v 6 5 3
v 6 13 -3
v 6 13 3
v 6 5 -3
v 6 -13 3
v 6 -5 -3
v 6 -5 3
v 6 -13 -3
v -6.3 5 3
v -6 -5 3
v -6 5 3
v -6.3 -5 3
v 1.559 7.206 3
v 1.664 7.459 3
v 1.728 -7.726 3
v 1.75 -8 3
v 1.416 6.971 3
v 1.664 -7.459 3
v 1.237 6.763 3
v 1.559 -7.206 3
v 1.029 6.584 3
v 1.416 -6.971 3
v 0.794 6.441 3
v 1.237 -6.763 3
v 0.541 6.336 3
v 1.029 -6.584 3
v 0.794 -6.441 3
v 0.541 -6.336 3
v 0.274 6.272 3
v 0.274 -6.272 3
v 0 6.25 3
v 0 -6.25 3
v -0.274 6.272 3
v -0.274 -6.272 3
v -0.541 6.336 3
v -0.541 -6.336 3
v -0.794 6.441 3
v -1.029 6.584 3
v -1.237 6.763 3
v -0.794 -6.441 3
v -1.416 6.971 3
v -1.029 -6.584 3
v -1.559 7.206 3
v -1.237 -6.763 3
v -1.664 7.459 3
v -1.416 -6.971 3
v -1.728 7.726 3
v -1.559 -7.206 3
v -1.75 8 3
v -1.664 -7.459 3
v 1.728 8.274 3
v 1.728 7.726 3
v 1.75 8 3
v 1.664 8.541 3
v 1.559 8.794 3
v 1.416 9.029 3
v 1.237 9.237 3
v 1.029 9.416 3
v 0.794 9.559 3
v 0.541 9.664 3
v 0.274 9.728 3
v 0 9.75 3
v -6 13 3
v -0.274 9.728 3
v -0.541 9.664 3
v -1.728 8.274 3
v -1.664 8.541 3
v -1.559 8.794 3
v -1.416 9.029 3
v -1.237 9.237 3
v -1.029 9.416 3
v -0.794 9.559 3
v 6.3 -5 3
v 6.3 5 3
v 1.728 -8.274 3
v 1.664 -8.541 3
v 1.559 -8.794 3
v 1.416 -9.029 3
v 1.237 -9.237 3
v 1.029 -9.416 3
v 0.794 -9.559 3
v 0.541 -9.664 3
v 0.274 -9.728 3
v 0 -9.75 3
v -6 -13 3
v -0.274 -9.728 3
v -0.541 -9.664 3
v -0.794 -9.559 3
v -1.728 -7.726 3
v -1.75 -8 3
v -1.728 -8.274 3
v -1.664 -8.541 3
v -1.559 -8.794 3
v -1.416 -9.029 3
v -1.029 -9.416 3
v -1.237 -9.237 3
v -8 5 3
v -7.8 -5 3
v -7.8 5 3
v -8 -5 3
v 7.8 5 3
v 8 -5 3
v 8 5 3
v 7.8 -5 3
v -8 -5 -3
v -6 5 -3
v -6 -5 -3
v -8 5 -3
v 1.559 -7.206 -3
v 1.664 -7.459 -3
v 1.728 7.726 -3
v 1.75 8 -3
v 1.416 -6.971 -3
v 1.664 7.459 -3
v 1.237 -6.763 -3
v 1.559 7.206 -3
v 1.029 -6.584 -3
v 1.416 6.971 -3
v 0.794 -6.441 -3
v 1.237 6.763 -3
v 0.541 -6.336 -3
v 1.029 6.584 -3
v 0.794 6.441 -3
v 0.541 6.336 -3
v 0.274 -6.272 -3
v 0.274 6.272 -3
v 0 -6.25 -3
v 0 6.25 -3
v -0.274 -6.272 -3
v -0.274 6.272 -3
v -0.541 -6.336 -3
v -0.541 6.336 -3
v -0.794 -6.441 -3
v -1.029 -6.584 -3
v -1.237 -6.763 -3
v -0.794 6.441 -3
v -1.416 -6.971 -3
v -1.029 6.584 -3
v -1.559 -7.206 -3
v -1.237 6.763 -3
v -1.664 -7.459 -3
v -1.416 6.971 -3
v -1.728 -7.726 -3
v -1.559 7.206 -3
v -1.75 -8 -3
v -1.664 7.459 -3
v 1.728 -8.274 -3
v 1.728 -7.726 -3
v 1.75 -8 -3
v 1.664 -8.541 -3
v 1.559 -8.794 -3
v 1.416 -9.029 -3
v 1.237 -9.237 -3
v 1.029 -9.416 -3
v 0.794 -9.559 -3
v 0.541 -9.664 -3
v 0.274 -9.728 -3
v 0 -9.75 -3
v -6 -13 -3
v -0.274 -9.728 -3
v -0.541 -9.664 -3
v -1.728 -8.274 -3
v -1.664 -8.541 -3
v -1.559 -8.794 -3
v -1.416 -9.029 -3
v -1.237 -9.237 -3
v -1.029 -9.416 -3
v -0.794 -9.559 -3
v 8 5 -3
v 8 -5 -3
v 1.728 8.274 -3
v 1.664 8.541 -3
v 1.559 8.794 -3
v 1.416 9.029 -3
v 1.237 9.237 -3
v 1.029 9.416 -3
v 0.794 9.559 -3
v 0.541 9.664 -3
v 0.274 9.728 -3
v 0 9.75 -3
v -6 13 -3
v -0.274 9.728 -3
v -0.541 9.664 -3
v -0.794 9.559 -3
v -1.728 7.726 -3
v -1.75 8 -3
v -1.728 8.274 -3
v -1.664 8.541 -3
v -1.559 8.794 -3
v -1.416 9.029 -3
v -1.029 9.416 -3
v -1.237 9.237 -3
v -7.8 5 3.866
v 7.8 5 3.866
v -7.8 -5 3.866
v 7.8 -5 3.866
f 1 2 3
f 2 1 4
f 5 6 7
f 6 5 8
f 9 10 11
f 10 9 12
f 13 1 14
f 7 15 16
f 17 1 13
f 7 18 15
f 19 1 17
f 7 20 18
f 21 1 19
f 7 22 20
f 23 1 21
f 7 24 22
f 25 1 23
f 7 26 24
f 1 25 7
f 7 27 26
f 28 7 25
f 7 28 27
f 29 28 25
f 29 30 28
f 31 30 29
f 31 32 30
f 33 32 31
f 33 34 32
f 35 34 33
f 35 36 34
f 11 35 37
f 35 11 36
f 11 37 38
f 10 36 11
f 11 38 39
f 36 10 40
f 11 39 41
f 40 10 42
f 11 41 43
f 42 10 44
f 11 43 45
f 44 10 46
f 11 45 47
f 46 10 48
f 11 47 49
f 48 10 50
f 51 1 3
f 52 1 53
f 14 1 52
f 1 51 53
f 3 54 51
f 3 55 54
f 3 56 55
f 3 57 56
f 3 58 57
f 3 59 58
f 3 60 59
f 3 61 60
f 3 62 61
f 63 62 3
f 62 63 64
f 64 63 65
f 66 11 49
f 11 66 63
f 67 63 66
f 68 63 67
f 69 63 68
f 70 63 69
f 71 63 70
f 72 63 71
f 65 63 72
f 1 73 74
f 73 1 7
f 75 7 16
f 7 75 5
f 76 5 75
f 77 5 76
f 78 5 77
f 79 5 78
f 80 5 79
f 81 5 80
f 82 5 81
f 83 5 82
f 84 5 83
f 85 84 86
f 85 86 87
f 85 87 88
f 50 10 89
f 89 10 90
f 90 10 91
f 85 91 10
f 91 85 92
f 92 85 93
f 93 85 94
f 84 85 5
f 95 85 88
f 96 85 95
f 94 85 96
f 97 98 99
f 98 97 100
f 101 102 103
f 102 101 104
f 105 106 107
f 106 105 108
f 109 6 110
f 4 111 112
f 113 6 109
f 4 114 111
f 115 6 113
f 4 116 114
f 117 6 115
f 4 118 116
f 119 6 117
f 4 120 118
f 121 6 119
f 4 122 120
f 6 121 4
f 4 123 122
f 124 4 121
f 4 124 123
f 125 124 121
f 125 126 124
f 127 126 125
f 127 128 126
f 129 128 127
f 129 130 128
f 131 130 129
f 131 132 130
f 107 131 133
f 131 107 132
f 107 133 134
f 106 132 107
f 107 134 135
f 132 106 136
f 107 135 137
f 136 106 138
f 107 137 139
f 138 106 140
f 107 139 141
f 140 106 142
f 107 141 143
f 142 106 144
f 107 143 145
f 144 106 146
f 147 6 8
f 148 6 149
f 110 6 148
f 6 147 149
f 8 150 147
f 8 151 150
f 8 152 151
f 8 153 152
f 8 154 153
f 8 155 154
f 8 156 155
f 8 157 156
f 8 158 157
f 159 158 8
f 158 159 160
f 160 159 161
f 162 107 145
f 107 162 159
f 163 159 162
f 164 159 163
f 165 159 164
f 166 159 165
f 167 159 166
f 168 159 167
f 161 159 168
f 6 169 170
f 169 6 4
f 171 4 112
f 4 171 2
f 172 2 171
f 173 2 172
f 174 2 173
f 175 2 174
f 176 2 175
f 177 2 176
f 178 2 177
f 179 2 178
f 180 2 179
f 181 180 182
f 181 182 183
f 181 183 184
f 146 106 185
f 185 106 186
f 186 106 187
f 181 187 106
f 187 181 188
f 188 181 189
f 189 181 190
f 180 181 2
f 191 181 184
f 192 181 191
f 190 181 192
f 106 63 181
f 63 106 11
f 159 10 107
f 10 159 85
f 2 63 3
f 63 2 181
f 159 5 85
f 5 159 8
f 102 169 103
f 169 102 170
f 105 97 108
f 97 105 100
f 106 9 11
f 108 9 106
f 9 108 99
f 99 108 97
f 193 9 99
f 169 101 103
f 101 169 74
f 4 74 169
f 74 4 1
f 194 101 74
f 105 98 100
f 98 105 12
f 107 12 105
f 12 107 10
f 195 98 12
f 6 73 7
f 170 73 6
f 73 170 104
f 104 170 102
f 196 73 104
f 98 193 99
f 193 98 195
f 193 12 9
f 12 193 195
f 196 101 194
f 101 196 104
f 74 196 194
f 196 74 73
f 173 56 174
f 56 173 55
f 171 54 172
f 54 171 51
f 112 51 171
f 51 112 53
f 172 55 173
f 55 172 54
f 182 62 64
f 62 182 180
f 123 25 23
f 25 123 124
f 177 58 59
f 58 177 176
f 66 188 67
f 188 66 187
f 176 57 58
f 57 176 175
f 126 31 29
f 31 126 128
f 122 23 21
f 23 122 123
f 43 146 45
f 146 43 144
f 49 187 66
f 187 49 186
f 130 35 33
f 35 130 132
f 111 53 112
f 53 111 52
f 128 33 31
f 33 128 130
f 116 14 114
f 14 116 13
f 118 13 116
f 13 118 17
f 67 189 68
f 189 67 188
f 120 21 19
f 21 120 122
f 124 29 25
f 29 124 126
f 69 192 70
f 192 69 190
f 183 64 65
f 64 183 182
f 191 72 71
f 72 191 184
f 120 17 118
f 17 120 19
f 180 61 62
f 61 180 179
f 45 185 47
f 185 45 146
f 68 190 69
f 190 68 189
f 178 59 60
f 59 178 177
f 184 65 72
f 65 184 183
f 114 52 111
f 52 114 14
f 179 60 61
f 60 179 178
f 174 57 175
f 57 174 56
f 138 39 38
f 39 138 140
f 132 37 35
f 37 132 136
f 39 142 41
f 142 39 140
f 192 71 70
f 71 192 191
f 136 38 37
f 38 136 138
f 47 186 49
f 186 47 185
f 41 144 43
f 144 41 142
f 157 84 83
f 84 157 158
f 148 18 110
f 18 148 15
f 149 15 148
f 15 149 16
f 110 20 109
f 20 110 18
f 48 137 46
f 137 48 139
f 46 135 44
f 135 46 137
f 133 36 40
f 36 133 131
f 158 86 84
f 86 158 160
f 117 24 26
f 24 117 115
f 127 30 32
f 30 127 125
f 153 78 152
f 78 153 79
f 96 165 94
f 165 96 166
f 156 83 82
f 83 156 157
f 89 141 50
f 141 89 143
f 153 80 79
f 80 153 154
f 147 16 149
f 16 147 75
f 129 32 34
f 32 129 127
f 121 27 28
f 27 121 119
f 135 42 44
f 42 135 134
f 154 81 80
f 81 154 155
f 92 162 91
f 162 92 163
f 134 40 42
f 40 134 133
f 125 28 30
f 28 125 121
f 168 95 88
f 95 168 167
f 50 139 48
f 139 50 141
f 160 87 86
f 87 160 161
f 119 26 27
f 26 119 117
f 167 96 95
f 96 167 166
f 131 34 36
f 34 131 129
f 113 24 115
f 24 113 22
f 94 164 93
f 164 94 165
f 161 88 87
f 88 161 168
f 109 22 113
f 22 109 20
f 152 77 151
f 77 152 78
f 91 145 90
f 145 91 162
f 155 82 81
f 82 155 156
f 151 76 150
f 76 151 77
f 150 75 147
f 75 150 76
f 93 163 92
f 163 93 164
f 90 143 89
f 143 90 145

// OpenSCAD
$fn=40;
MAIN_HT=6;


difference(){
    union(){
        // main body
        cube([12, 26, MAIN_HT], center=true);
        cube([16, 10, MAIN_HT], center=true);

        // gripping ridges
        translate([-7.3, 5, MAIN_HT/2]){
            rotate([90, 0, 0]){
                cylinder(h = 10, r = 1, $fn=3);
            }
        }
        translate([7.3, 5, MAIN_HT/2]){
            rotate([90, 60, 0]){
                cylinder(h = 10, r = 1, $fn=3);
            }
        }

    }
    translate([0, 8, -6]){
        cylinder(h = 12, r = 3.5/2);
    }
    translate([0, -8, -6]){
        cylinder(h = 12, r = 3.5/2);
    }
}
